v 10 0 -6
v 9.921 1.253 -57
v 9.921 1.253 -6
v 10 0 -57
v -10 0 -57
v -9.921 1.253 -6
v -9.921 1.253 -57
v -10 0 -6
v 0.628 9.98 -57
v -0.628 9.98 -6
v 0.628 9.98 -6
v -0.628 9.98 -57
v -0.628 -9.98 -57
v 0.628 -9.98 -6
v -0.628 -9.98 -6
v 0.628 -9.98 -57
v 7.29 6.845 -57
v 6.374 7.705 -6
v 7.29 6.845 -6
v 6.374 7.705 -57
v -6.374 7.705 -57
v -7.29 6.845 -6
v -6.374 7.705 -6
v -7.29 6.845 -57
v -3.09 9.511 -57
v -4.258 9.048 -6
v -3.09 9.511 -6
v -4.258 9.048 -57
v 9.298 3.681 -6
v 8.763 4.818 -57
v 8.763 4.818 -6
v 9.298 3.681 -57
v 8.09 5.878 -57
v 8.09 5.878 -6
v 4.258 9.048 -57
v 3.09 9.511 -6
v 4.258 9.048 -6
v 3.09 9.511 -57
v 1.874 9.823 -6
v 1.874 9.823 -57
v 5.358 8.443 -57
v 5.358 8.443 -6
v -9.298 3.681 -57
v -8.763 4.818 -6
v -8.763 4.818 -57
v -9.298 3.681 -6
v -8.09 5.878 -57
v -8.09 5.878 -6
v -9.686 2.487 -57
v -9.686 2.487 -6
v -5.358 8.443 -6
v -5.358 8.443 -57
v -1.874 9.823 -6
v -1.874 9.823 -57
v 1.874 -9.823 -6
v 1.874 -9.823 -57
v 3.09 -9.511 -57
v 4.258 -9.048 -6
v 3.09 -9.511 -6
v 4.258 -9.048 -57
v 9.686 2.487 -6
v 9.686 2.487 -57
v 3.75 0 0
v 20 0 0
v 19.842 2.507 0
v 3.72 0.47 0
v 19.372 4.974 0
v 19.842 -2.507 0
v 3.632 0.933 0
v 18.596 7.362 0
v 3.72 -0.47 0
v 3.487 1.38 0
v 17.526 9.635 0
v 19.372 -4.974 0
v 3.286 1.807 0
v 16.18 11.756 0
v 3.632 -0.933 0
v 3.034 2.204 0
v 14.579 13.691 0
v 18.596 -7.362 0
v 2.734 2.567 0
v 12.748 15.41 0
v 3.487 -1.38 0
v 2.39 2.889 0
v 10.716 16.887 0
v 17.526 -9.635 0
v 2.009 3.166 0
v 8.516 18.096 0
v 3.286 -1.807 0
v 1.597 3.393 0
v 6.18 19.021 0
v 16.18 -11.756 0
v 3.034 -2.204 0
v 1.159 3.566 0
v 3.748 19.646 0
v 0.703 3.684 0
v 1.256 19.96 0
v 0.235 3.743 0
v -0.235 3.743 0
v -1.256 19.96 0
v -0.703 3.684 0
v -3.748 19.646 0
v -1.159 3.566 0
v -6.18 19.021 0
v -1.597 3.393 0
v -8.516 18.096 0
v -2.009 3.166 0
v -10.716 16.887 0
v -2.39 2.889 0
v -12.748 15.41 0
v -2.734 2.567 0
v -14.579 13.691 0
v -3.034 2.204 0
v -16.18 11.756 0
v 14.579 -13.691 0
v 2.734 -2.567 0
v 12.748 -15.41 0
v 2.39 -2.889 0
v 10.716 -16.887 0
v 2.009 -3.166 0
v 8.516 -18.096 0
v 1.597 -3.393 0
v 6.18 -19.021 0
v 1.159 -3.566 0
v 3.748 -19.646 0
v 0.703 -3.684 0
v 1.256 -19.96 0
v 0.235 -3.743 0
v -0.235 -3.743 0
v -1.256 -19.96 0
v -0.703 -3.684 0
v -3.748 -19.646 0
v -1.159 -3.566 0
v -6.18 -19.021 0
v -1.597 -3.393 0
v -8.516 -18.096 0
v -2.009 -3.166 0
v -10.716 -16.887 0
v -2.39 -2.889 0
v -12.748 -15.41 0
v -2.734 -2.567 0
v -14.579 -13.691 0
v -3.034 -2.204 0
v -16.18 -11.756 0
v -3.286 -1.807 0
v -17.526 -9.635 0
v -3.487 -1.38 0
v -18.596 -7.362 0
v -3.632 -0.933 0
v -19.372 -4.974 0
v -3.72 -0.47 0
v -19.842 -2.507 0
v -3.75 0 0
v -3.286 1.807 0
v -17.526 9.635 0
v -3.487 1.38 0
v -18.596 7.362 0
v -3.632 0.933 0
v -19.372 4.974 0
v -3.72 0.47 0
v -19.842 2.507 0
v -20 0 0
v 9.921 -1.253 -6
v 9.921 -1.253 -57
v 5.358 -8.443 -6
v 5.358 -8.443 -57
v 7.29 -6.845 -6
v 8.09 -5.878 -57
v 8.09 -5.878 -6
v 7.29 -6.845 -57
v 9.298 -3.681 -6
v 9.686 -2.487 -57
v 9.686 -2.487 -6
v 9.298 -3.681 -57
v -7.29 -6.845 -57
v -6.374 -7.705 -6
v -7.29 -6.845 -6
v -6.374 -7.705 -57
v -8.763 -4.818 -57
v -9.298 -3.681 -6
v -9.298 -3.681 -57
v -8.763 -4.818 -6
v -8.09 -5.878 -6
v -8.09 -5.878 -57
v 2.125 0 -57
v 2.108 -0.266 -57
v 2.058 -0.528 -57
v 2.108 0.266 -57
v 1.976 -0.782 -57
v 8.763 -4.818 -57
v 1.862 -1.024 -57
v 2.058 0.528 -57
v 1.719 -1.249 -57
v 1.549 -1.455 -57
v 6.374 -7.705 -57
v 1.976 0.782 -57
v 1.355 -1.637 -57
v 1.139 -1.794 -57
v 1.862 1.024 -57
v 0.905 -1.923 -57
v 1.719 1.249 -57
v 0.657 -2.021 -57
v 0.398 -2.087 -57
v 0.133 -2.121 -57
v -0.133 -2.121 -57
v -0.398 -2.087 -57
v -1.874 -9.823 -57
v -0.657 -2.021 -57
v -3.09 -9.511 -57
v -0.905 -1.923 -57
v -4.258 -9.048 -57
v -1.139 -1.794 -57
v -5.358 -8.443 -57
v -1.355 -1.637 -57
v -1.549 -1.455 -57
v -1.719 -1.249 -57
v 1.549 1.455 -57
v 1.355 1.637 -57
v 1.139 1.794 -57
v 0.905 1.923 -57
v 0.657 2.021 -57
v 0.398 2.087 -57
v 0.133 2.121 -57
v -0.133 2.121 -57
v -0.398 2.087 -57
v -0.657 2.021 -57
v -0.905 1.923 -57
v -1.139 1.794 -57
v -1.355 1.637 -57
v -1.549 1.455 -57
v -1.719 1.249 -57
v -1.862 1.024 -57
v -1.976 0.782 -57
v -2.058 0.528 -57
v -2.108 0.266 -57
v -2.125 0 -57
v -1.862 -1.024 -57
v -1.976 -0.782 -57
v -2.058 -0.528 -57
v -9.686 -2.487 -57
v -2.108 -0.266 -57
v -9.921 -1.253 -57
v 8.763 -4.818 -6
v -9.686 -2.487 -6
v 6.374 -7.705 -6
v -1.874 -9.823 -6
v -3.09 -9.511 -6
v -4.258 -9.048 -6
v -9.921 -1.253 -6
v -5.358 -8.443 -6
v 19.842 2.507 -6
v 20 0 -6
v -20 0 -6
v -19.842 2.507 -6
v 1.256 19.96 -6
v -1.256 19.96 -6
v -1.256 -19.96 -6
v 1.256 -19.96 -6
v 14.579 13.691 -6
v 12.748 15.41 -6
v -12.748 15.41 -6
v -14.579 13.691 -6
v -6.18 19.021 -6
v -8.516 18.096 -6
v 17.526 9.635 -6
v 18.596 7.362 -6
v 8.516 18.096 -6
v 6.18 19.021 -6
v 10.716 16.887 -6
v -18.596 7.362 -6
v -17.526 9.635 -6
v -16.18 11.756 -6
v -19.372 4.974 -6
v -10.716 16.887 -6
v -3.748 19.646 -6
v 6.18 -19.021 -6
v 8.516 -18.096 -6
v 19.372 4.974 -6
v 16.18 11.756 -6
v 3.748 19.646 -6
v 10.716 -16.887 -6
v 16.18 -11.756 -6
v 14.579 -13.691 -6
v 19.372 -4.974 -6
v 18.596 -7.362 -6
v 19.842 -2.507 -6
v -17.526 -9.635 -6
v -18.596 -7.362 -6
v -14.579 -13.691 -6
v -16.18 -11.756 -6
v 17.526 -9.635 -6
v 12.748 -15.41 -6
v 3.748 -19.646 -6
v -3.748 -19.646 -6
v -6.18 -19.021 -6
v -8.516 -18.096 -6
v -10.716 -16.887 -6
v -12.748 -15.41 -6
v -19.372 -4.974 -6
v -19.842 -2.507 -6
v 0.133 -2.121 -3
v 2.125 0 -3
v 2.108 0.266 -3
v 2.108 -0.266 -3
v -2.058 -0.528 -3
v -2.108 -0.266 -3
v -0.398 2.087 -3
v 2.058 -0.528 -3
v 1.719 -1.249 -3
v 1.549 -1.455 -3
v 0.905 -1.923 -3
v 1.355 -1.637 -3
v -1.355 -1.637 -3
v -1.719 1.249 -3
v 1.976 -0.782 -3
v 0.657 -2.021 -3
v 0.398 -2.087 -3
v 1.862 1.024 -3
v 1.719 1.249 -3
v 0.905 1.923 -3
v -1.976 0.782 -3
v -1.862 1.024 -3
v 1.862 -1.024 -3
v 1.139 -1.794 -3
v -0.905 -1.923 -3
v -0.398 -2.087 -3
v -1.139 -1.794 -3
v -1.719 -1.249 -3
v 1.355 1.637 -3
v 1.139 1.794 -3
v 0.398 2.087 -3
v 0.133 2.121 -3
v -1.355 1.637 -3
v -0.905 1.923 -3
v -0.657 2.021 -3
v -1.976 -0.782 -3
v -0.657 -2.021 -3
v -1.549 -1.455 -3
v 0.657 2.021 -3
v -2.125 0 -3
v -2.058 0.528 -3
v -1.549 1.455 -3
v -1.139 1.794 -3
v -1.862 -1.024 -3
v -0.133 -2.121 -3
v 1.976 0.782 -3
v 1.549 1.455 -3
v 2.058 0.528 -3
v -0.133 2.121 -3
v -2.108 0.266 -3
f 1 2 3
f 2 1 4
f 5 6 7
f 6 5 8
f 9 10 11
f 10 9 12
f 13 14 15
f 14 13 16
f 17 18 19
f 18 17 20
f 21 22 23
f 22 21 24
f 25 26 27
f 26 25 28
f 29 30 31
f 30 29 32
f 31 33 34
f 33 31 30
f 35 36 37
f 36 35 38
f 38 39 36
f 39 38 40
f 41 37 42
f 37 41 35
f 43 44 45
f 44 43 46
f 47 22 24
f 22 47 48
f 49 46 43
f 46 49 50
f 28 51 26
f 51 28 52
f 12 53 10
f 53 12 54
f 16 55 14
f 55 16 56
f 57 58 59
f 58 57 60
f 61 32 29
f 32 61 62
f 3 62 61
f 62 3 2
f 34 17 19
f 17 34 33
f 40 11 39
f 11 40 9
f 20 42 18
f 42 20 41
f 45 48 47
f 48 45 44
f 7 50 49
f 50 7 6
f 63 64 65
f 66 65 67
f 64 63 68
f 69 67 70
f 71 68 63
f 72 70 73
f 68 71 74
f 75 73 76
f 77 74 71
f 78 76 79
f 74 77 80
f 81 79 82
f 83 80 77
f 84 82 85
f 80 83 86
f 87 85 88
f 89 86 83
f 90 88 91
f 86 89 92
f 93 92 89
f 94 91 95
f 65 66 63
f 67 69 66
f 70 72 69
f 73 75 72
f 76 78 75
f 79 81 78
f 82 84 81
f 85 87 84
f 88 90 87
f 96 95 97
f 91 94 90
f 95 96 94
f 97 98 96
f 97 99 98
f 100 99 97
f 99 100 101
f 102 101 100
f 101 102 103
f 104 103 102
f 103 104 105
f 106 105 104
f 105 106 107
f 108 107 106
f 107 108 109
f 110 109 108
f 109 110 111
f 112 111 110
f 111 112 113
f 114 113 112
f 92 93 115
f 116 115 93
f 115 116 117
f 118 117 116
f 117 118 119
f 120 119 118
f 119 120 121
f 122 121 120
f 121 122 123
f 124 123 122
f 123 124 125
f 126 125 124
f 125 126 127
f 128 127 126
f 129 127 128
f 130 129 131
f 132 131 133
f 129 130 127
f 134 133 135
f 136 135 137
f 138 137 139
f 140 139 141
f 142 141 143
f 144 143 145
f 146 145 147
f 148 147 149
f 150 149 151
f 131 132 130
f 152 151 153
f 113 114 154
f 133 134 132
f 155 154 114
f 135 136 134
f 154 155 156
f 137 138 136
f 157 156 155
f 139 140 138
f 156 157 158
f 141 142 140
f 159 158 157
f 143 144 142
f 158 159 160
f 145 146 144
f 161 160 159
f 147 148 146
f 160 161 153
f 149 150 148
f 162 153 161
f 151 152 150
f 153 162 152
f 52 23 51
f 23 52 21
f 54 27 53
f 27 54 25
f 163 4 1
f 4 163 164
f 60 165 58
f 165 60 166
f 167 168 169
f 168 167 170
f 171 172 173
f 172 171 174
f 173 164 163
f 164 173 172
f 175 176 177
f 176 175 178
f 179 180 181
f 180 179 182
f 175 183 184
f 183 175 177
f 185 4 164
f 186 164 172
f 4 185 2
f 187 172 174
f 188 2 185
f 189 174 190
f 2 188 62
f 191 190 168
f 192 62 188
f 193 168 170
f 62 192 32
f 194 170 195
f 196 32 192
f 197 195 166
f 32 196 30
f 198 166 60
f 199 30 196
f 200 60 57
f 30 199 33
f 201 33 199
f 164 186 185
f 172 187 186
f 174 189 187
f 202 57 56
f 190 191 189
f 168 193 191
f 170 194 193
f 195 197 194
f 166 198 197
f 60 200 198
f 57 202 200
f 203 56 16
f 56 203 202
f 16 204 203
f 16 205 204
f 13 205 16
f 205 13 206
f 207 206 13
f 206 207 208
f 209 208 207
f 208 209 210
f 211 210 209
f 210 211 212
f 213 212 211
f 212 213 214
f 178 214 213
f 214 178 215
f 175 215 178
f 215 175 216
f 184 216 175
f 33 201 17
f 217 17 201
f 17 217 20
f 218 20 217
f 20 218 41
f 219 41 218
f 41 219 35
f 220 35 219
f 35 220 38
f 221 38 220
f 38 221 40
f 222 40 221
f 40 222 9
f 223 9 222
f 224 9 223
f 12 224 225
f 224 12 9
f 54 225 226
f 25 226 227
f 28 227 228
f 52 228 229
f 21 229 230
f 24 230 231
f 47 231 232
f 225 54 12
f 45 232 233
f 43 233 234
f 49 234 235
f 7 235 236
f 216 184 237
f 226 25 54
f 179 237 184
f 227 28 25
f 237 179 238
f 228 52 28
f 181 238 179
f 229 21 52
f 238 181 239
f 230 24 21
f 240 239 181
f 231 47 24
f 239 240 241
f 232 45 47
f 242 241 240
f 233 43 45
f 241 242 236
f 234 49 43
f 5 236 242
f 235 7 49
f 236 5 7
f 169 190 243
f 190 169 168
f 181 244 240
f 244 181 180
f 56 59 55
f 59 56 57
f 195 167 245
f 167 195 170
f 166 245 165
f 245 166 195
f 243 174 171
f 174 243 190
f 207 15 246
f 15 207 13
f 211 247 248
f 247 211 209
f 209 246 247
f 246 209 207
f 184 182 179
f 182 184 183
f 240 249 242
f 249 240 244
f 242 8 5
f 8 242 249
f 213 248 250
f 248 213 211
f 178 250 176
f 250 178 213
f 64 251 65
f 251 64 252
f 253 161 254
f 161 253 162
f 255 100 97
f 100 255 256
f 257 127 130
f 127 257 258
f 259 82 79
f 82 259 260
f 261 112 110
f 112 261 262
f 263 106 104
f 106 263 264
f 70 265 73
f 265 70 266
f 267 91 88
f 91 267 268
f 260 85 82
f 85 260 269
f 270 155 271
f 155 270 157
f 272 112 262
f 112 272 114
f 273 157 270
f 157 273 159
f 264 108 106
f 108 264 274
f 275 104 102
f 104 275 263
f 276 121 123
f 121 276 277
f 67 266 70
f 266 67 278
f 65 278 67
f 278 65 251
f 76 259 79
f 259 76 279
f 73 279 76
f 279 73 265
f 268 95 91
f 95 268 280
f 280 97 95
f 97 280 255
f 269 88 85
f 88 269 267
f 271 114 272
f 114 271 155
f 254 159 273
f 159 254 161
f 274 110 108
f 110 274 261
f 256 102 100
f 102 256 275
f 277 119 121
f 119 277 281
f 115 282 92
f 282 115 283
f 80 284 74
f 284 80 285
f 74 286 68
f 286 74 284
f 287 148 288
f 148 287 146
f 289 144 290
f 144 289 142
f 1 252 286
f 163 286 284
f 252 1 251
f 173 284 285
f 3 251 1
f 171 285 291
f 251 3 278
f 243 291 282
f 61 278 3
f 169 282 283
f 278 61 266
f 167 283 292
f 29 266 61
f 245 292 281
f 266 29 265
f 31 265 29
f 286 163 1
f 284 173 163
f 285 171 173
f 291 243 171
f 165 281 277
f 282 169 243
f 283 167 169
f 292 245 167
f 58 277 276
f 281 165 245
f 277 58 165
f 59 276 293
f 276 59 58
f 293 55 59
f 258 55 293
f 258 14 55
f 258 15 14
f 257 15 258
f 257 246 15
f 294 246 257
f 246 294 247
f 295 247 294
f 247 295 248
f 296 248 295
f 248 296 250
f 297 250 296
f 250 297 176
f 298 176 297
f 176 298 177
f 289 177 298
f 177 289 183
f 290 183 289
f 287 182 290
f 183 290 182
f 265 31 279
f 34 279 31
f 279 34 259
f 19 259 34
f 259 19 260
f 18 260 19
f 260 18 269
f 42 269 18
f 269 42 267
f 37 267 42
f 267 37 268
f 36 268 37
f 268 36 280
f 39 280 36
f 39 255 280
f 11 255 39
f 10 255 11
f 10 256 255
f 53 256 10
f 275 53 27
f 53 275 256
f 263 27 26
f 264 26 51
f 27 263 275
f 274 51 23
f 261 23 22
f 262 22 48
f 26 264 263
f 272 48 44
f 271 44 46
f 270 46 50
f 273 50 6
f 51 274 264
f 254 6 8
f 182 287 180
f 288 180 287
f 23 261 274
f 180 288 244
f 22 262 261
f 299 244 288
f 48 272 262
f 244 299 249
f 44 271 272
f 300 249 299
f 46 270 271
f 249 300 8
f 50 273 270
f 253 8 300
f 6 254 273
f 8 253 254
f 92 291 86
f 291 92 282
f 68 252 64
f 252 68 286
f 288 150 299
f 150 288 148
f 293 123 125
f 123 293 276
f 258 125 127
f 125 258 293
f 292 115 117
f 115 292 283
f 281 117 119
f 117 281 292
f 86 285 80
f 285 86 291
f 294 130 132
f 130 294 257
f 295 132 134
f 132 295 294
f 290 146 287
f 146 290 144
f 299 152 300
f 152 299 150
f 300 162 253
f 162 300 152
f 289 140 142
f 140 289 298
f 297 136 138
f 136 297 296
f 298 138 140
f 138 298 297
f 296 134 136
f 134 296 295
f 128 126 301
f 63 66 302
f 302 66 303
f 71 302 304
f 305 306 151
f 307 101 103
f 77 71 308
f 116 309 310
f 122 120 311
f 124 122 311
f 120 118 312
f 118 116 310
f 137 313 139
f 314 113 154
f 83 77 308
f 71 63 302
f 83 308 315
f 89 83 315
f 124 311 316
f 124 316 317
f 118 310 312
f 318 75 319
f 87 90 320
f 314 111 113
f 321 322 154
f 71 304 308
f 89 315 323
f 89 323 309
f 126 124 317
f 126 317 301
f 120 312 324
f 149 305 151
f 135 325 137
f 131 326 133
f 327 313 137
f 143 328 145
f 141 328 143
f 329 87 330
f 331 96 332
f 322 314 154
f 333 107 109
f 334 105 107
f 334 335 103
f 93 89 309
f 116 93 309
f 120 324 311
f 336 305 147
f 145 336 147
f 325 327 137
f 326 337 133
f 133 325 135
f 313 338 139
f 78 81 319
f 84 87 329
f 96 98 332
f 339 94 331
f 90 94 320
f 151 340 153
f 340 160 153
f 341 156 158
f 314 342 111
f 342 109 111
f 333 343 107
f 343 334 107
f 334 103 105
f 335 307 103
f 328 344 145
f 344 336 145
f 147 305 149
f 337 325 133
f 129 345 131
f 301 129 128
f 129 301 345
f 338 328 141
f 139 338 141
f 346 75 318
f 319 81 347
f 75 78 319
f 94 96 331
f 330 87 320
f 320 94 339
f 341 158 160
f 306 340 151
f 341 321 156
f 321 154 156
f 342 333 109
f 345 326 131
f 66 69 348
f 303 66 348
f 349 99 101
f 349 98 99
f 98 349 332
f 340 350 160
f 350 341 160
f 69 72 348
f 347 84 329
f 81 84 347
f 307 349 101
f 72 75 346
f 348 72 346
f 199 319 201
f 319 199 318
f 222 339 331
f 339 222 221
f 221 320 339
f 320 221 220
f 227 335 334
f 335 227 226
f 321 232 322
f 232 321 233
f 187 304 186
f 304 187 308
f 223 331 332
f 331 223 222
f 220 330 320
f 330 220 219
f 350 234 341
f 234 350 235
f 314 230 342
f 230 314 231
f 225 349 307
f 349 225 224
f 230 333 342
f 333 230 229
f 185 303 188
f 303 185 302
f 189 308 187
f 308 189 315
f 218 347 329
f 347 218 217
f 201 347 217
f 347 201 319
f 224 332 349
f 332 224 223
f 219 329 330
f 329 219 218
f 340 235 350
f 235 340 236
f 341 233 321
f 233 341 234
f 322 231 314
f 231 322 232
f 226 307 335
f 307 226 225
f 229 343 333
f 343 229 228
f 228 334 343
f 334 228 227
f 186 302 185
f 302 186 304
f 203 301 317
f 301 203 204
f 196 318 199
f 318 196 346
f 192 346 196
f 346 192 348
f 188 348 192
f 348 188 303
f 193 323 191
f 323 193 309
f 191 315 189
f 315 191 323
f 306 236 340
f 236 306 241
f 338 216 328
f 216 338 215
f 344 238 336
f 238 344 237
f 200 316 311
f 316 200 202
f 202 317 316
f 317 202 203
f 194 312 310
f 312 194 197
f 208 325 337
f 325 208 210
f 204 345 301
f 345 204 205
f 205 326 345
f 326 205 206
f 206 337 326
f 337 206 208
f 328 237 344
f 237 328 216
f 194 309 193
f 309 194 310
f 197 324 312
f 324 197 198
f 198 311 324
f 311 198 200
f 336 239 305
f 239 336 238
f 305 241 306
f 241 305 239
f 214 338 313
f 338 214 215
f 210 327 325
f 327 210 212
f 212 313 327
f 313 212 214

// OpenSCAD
$fn = 50;


difference() {
	union() {
		translate(v = [0, 0, -57.0000000000]) {
			cylinder(h = 57, r = 10.0000000000);
		}
		translate(v = [0, 0, -6.0000000000]) {
			cylinder(h = 6, r = 20.0000000000);
		}
	}
	union() {
		translate(v = [0, 0, 0]) {
			rotate(a = [0, 0, 0]) {
				difference() {
					union() {
						#translate(v = [0, 0, -57.0000000000]) {
							cylinder(h = 57, r = 2.0000000000);
						}
						#translate(v = [0, 0, -3]) {
							cylinder(h = 3, r1 = 2.1250000000, r2 = 3.7500000000);
						}
						#translate(v = [0, 0, -57.0000000000]) {
							cylinder(h = 57, r = 2.1250000000);
						}
						#translate(v = [0, 0, -57.0000000000]) {
							cylinder(h = 57, r = 2.0000000000);
						}
					}
					union();
				}
			}
		}
	}
}
